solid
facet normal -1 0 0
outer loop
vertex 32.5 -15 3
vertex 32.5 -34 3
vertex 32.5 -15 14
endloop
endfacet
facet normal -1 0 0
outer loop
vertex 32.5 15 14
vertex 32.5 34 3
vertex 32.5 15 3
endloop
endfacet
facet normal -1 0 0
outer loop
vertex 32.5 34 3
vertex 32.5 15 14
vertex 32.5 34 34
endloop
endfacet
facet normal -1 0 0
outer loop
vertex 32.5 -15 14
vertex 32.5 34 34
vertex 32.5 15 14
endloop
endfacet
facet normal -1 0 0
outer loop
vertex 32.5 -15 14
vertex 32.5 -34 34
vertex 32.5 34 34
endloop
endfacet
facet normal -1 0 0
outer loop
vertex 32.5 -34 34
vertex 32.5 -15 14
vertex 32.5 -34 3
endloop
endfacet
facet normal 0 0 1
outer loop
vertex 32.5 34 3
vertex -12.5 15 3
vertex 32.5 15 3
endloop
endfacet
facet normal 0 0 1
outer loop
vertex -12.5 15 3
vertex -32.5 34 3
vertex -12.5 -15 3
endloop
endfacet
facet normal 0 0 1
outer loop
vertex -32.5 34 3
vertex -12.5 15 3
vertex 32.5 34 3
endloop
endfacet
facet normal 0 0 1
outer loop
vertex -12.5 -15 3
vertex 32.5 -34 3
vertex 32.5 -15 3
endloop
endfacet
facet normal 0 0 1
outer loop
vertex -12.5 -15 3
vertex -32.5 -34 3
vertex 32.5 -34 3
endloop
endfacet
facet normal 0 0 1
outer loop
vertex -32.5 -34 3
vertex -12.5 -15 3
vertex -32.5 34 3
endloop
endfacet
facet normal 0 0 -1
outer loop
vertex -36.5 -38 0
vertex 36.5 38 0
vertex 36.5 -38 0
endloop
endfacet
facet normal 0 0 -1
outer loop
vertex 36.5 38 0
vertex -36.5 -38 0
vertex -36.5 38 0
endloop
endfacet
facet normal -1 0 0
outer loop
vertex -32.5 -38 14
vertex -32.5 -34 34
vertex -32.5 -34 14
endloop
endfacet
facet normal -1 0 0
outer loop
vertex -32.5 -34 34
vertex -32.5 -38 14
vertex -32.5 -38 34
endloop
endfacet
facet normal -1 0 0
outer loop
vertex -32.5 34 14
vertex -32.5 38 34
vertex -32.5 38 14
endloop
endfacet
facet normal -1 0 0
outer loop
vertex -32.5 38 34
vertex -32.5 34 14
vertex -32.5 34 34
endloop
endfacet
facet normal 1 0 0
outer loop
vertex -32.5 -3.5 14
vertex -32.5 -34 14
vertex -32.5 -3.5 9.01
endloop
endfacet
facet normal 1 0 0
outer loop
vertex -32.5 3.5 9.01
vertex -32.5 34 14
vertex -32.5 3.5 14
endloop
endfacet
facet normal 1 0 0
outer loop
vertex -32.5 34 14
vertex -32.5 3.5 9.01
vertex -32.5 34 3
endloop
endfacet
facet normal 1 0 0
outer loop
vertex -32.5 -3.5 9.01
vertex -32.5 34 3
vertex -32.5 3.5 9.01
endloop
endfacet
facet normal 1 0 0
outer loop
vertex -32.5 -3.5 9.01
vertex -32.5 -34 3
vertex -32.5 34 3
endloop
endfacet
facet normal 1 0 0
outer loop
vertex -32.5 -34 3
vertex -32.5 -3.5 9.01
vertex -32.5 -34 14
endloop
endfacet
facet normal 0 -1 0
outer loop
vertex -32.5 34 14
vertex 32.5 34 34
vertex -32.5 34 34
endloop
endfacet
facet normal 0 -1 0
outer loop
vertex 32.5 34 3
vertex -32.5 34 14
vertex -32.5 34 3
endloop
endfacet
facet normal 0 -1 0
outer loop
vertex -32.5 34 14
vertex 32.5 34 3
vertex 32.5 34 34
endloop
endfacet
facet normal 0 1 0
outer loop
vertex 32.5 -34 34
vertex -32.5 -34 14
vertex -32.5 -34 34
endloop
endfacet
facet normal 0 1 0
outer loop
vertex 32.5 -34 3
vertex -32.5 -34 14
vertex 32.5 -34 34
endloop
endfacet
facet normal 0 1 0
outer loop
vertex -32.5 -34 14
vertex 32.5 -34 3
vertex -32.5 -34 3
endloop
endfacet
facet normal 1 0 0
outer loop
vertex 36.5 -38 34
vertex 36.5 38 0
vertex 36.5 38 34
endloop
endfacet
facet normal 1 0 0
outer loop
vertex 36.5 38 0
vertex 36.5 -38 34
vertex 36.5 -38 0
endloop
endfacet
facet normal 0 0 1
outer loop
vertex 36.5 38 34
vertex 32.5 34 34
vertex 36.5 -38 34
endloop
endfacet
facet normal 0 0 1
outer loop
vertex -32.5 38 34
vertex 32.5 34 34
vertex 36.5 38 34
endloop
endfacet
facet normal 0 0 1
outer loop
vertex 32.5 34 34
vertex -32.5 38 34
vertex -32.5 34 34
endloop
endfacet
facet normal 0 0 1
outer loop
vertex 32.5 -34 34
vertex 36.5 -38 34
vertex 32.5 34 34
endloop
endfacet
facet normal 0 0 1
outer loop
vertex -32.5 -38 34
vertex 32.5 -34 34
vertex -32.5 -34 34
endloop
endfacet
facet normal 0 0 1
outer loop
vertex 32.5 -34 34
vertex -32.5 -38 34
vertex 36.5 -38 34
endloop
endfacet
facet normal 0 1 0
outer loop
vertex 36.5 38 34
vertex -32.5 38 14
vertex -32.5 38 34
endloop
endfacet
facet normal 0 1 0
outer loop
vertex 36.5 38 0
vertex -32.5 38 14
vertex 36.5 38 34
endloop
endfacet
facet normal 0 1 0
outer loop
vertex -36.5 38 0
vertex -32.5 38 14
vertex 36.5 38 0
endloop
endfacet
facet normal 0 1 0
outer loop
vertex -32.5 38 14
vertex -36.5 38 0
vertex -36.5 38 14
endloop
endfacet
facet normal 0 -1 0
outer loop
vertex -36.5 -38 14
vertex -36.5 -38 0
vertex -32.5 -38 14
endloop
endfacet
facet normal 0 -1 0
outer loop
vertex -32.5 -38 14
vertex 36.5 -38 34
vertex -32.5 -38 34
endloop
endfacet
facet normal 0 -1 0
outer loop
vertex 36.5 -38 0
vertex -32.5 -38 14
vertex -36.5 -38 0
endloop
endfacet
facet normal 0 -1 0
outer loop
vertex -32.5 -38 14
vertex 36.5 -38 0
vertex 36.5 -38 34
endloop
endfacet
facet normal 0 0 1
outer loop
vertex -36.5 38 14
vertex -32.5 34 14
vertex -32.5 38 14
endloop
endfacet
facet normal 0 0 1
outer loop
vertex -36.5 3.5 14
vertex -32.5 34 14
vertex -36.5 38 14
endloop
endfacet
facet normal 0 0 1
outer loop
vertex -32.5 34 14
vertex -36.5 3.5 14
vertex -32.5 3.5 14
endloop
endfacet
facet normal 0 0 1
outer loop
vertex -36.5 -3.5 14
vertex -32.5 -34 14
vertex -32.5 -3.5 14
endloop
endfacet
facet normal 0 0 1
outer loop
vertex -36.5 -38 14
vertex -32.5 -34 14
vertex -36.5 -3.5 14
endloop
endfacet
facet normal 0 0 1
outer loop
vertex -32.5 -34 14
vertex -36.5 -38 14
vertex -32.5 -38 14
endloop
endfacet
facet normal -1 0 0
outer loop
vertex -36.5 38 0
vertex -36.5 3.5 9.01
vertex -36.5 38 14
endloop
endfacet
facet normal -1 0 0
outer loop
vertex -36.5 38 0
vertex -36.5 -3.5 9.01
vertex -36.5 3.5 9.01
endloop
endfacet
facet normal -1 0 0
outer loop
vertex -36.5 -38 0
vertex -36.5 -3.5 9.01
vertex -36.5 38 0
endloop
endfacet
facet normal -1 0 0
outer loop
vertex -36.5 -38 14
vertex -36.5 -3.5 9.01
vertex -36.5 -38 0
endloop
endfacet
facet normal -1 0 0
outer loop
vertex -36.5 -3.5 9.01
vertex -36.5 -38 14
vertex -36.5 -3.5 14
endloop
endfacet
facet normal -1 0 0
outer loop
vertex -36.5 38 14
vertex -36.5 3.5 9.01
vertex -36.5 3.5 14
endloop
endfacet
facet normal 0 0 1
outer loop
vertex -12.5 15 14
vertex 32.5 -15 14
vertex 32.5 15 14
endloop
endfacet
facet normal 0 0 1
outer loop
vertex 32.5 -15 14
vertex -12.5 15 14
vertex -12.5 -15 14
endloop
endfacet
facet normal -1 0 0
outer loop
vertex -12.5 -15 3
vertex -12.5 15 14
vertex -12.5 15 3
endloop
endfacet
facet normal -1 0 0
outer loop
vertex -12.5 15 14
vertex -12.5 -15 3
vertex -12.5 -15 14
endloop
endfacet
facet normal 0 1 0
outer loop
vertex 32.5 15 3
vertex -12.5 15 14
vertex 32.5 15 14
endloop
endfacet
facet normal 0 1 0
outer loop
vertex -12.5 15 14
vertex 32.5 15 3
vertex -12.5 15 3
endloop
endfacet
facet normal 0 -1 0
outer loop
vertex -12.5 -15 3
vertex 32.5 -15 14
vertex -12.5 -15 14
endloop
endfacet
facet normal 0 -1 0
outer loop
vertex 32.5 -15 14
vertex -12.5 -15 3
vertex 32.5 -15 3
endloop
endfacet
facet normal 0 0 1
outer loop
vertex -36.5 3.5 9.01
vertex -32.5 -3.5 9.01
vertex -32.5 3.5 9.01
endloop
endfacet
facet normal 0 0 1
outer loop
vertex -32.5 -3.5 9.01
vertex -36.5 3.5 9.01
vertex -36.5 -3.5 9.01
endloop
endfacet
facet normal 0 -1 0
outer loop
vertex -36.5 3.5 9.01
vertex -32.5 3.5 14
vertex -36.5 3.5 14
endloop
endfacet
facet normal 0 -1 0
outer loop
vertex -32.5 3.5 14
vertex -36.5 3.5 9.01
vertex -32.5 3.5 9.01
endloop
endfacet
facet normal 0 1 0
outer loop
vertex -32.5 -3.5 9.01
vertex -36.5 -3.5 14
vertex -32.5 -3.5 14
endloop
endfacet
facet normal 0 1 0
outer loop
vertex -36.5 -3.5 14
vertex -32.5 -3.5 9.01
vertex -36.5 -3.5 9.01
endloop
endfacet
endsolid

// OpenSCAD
// Copyright: ChasinSpin, 2023
// License: MIT License

// Print 15% Fill No Support


plateBorderThickness            = 4;
plateBorderHeightShort          = plateBorderThickness + 10;
plateBorderHeightTall           = plateBorderHeightShort + 20;
plateBorderHeightExtra          = 20;
batteryCoverPlateDimensions     = [65, 68, 3];

velcroBlock                     = [45, 30, plateBorderHeightShort];

manifoldCorrection              = 0.01;

cableChannel                    = [plateBorderThickness + manifoldCorrection * 2, 7, 5];



batteryCover();



module batteryCover()
{
    difference()
    {
        batteryCover2();
        
        translate( [-batteryCoverPlateDimensions[0]/2 - plateBorderThickness/2, 0, plateBorderHeightShort - cableChannel[2]/2 + manifoldCorrection] )
            cube( cableChannel, center = true);
    }
}



module batteryCover2()
{
    translate( [0, 0, batteryCoverPlateDimensions[2] / 2] )
        cube(batteryCoverPlateDimensions, center = true);
    
        sideX(1.0, batteryCoverPlateDimensions[1] + plateBorderThickness*2, plateBorderHeightTall);
        sideX(-1.0, batteryCoverPlateDimensions[1] + plateBorderThickness*2, plateBorderHeightShort);
        sideY(1.0, batteryCoverPlateDimensions[0], plateBorderHeightTall);
        sideY(-1.0, batteryCoverPlateDimensions[0], plateBorderHeightTall);
   
   translate( [batteryCoverPlateDimensions[0] / 2 - velcroBlock[0]/2, 0, velcroBlock[2]/2] )
        cube( velcroBlock, center = true ); 
}


module sideY(plusMinus, length, height)
{
    translate( [0, 0, height/2] )
        translate( [0, plusMinus * ((plateBorderThickness + batteryCoverPlateDimensions[1])/2), 0] )
            cube([length, plateBorderThickness, height], center = true);
}


module sideX(plusMinus, length, height)
{
    translate( [0, 0, height/2] )
        translate( [plusMinus * ((plateBorderThickness + batteryCoverPlateDimensions[0])/2), 0, 0] )
            cube([plateBorderThickness, length, height], center = true);
}
